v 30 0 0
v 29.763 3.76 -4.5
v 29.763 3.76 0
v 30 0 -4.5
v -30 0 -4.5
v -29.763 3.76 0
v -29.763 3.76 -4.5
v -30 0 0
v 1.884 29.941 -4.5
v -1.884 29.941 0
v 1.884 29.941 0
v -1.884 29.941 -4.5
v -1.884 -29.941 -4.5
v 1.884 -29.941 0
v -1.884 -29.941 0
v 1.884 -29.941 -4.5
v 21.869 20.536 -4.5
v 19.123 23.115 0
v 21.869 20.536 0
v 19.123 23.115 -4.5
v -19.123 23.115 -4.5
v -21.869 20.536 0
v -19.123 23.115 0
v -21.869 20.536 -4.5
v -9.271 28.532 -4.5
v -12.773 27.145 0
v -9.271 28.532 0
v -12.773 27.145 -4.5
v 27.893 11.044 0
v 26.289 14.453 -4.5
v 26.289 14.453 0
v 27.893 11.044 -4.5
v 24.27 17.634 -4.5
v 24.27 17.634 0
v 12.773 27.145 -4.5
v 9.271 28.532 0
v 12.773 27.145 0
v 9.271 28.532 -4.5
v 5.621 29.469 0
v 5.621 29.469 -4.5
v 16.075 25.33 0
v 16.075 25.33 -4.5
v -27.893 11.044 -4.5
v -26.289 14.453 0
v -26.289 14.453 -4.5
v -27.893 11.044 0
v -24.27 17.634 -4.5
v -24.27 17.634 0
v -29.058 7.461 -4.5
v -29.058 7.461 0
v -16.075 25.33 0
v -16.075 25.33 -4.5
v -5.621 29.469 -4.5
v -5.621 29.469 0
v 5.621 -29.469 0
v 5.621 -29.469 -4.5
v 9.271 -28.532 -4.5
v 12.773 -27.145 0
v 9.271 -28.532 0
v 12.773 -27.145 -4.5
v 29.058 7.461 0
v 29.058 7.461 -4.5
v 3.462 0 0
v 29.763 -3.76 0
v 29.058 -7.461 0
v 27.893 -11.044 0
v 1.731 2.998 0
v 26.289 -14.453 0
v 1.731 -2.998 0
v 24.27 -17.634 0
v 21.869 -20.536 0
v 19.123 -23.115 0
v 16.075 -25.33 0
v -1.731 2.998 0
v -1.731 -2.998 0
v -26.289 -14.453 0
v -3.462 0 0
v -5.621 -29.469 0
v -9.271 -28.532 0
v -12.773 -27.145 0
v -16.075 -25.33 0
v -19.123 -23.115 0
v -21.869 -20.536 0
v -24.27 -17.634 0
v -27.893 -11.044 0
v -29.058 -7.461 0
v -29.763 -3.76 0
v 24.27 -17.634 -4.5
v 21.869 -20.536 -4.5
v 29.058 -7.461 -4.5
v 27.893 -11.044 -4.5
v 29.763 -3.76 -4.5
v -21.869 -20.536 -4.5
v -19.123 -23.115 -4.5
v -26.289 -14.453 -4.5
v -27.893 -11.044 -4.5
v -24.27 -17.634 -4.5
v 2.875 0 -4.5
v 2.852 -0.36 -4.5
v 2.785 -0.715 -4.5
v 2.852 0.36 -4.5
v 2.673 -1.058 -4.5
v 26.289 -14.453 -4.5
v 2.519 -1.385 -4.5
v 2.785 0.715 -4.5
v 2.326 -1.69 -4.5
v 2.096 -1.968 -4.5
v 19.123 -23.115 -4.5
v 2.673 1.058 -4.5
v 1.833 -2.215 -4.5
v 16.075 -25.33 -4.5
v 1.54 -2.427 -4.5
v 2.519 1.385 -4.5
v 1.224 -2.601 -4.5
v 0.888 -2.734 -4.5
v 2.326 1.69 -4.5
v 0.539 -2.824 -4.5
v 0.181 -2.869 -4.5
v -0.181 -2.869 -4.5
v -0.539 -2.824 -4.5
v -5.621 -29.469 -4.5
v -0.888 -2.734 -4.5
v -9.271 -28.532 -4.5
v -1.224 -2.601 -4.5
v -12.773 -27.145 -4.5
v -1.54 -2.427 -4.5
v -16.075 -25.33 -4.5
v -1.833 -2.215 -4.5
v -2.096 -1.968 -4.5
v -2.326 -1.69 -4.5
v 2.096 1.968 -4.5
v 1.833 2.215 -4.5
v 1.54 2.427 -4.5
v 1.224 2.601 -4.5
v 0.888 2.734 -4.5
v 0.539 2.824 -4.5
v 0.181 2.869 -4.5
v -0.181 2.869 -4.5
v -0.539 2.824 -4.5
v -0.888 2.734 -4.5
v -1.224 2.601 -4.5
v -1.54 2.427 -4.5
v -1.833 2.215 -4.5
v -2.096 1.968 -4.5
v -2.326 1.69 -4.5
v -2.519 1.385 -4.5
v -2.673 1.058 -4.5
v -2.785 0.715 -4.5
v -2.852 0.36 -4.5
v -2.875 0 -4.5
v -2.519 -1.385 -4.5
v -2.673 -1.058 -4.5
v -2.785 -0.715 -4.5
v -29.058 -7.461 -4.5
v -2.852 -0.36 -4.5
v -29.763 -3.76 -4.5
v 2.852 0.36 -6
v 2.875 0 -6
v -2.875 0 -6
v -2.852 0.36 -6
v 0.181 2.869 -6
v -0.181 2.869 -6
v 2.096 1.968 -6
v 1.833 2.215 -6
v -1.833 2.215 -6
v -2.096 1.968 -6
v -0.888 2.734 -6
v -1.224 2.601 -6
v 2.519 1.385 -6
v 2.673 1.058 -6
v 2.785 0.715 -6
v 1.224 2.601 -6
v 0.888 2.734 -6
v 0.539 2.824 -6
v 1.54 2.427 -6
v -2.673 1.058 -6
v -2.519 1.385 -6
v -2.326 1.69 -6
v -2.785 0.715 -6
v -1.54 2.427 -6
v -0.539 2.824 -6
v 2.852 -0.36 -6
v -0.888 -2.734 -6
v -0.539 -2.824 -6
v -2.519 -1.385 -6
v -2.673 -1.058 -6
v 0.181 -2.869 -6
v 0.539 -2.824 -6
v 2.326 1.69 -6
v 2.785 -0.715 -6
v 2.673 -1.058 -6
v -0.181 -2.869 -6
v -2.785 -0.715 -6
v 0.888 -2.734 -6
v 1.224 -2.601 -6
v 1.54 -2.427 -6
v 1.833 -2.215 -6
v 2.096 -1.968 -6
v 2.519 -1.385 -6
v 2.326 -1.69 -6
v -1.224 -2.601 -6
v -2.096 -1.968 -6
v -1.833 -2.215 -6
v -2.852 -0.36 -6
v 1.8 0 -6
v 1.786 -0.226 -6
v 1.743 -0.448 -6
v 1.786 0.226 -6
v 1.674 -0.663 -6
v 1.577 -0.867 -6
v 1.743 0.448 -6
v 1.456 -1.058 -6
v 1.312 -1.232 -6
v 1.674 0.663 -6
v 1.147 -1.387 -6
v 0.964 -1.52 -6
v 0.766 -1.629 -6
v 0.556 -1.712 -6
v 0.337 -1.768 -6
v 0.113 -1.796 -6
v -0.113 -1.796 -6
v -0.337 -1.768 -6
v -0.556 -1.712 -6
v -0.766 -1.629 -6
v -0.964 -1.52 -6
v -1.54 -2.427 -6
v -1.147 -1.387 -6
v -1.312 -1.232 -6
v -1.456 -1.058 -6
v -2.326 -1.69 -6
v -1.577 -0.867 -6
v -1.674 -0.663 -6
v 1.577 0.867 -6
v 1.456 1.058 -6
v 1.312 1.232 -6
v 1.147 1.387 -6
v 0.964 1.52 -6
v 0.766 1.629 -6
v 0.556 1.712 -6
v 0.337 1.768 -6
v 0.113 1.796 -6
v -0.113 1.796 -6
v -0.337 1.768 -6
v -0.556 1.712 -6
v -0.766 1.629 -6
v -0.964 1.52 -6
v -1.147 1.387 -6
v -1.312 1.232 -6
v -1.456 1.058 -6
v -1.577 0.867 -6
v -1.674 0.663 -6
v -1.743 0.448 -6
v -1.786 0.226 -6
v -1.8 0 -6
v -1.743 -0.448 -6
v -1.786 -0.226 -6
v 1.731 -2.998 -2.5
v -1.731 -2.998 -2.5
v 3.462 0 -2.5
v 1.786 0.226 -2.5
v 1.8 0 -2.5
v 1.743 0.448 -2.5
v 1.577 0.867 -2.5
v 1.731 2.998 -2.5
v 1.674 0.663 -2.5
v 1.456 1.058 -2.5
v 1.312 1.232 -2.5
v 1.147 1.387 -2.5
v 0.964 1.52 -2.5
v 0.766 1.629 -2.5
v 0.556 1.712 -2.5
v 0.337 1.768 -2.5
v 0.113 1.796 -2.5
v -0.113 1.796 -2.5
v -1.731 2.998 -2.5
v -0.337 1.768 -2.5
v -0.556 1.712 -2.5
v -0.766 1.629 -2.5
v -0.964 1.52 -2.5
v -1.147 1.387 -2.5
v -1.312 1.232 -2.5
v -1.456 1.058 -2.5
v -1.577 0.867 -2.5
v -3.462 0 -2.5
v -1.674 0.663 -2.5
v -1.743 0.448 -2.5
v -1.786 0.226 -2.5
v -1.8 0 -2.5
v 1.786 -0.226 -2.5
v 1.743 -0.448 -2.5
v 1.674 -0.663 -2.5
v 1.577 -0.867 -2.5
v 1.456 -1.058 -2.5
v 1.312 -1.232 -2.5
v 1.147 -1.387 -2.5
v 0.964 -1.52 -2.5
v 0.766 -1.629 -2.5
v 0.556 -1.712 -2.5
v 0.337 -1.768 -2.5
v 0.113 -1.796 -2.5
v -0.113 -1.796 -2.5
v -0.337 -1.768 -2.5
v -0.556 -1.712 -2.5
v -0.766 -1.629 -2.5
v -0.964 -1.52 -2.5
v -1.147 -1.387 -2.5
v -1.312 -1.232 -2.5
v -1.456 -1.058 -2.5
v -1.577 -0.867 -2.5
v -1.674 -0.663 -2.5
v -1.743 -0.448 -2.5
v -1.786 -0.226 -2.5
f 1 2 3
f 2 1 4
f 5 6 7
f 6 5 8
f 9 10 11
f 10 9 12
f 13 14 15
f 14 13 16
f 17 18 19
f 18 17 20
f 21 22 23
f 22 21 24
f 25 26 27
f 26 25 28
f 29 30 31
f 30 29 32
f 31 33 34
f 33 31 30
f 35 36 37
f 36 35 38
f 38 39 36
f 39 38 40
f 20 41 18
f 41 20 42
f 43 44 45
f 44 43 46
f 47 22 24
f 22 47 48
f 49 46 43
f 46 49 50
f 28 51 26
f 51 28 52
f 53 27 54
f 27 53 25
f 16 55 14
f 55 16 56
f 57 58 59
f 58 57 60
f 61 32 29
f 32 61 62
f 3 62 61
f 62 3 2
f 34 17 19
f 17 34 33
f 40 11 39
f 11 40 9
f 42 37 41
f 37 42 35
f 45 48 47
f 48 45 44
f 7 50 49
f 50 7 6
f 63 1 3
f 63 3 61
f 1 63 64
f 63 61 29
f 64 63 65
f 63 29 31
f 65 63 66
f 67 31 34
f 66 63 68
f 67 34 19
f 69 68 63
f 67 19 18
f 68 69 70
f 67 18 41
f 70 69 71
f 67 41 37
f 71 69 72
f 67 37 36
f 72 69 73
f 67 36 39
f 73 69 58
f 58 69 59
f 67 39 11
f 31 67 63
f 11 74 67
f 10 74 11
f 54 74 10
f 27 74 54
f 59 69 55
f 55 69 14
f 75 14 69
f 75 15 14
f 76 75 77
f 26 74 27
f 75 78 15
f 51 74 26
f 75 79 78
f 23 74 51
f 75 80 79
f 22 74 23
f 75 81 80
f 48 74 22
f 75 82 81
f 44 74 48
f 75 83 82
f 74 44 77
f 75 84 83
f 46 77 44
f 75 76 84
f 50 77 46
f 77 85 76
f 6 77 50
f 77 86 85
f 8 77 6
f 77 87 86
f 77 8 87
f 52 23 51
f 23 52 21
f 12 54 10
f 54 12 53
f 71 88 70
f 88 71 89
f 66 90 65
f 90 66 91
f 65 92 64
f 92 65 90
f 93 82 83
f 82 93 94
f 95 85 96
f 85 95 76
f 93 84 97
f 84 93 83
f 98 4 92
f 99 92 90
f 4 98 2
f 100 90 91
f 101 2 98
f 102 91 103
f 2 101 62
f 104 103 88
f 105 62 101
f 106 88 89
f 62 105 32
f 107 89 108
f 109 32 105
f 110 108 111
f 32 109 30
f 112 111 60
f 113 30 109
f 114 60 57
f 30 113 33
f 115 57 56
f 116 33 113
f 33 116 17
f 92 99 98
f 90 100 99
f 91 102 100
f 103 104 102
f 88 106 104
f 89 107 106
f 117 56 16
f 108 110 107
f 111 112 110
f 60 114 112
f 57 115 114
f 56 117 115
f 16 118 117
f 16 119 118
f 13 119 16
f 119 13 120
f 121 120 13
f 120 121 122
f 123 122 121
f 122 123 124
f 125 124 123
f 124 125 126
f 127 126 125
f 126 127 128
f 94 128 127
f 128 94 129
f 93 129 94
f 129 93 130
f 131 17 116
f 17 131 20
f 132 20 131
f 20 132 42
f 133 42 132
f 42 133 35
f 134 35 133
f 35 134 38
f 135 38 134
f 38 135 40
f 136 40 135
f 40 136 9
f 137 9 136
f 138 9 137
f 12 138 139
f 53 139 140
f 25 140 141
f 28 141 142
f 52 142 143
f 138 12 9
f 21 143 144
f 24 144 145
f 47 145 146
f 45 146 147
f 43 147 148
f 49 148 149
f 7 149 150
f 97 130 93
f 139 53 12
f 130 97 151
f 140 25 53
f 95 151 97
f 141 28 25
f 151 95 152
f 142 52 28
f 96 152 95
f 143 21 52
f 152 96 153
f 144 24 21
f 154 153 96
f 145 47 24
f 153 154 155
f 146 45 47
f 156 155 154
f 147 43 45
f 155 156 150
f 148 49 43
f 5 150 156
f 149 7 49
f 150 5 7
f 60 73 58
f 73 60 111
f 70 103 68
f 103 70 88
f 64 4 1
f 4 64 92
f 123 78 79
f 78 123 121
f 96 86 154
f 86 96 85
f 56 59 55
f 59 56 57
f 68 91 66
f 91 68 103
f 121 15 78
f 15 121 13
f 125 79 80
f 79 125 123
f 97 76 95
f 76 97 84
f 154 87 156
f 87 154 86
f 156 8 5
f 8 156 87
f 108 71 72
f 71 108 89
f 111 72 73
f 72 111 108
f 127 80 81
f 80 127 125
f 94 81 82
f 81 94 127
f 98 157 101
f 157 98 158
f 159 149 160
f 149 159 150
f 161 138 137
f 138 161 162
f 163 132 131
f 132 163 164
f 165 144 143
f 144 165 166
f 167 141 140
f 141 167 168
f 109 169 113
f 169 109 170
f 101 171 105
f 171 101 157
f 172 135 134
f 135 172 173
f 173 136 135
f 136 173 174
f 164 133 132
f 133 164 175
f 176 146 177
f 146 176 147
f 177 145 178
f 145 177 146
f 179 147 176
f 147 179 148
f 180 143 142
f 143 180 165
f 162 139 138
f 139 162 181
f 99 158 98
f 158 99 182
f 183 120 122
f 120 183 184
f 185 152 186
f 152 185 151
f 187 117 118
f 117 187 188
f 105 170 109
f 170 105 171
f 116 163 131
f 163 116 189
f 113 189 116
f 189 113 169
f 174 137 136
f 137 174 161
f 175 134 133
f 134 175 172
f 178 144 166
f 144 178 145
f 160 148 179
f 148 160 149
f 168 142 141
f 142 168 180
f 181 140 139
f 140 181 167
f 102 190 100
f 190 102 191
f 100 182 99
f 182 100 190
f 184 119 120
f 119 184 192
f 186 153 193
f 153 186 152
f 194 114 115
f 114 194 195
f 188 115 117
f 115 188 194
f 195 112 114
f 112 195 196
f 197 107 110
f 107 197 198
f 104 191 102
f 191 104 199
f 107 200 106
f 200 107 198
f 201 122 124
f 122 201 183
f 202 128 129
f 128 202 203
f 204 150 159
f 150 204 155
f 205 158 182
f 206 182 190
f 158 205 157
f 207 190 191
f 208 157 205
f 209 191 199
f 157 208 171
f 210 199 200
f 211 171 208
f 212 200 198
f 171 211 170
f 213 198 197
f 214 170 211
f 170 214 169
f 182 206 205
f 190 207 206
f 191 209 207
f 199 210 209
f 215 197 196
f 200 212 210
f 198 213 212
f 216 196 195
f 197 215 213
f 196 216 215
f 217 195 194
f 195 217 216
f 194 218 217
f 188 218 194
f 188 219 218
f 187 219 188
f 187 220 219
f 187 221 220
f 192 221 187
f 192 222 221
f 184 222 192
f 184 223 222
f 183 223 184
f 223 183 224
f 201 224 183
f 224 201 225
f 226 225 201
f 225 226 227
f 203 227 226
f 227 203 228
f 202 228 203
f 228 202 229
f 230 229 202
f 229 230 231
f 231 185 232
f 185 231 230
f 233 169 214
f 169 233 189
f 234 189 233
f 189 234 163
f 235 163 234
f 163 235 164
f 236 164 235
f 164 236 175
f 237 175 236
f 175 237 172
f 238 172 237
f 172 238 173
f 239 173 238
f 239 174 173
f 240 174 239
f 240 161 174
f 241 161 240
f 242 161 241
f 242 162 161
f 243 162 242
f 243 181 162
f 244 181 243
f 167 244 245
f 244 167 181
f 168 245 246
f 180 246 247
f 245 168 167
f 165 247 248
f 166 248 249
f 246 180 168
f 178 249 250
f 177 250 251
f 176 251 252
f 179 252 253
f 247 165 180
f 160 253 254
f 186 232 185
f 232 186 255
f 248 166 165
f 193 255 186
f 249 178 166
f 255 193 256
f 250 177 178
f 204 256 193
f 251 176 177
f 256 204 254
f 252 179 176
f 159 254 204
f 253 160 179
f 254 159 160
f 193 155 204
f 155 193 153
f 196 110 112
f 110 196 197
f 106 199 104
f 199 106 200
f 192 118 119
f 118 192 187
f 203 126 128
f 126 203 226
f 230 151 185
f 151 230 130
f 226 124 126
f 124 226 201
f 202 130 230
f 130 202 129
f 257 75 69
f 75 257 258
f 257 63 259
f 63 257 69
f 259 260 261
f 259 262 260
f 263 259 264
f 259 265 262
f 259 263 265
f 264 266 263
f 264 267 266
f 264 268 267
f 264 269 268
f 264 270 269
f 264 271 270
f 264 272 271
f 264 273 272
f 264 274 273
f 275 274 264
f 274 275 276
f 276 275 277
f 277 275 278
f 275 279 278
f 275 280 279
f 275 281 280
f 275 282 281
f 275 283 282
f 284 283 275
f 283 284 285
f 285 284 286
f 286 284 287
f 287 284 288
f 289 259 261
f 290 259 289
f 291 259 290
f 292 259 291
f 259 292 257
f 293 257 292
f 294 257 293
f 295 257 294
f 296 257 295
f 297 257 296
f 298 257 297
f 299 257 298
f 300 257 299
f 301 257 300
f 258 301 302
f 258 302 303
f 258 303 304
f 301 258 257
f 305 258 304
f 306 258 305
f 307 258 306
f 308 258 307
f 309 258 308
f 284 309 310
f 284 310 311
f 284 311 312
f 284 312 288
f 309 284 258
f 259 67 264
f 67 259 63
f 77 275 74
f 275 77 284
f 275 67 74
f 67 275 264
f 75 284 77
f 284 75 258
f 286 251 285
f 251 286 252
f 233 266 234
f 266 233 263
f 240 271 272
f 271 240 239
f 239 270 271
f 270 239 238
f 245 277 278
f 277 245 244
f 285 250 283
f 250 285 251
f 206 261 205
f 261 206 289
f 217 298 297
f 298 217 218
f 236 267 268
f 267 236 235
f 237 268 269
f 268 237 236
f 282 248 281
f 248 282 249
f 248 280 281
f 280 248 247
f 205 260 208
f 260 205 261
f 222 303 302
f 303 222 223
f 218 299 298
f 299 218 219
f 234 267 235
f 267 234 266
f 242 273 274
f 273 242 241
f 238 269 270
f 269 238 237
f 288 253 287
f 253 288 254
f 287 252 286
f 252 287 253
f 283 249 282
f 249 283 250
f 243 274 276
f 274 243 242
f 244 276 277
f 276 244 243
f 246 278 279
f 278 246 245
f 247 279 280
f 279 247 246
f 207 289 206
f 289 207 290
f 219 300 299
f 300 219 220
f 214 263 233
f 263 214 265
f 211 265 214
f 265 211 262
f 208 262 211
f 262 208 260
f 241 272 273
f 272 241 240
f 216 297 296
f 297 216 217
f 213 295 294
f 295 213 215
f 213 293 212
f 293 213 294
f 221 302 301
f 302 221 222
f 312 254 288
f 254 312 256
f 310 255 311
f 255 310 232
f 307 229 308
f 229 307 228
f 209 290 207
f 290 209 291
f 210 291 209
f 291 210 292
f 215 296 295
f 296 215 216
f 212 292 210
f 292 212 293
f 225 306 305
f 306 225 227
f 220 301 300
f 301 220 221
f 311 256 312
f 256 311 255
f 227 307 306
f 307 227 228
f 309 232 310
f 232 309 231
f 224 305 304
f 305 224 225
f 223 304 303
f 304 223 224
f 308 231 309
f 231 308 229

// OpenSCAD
$fn = 50;


difference() {
	union() {
		translate(v = [0, 0, -4.5000000000]) {
			cylinder(h = 4.5000000000, r = 30.0000000000);
		}
		#translate(v = [0, 0, -6.0000000000]) {
			cylinder(h = 6, r = 2.8750000000);
		}
	}
	union() {
		translate(v = [0, 0, 0]) {
			rotate(a = [0, 0, 0]) {
				difference() {
					union() {
						translate(v = [0, 0, -2.5000000000]) {
							linear_extrude(height = 2.5000000000) {
								polygon(points = [[3.4620000000, 0.0000000000], [1.7310000000, 2.9981799479], [-1.7310000000, 2.9981799479], [-3.4620000000, 0.0000000000], [-1.7310000000, -2.9981799479], [1.7310000000, -2.9981799479]]);
							}
						}
					}
					union();
				}
			}
		}
		#translate(v = [0, 0, -100.0000000000]) {
			cylinder(h = 200, r = 1.8000000000);
		}
	}
}
